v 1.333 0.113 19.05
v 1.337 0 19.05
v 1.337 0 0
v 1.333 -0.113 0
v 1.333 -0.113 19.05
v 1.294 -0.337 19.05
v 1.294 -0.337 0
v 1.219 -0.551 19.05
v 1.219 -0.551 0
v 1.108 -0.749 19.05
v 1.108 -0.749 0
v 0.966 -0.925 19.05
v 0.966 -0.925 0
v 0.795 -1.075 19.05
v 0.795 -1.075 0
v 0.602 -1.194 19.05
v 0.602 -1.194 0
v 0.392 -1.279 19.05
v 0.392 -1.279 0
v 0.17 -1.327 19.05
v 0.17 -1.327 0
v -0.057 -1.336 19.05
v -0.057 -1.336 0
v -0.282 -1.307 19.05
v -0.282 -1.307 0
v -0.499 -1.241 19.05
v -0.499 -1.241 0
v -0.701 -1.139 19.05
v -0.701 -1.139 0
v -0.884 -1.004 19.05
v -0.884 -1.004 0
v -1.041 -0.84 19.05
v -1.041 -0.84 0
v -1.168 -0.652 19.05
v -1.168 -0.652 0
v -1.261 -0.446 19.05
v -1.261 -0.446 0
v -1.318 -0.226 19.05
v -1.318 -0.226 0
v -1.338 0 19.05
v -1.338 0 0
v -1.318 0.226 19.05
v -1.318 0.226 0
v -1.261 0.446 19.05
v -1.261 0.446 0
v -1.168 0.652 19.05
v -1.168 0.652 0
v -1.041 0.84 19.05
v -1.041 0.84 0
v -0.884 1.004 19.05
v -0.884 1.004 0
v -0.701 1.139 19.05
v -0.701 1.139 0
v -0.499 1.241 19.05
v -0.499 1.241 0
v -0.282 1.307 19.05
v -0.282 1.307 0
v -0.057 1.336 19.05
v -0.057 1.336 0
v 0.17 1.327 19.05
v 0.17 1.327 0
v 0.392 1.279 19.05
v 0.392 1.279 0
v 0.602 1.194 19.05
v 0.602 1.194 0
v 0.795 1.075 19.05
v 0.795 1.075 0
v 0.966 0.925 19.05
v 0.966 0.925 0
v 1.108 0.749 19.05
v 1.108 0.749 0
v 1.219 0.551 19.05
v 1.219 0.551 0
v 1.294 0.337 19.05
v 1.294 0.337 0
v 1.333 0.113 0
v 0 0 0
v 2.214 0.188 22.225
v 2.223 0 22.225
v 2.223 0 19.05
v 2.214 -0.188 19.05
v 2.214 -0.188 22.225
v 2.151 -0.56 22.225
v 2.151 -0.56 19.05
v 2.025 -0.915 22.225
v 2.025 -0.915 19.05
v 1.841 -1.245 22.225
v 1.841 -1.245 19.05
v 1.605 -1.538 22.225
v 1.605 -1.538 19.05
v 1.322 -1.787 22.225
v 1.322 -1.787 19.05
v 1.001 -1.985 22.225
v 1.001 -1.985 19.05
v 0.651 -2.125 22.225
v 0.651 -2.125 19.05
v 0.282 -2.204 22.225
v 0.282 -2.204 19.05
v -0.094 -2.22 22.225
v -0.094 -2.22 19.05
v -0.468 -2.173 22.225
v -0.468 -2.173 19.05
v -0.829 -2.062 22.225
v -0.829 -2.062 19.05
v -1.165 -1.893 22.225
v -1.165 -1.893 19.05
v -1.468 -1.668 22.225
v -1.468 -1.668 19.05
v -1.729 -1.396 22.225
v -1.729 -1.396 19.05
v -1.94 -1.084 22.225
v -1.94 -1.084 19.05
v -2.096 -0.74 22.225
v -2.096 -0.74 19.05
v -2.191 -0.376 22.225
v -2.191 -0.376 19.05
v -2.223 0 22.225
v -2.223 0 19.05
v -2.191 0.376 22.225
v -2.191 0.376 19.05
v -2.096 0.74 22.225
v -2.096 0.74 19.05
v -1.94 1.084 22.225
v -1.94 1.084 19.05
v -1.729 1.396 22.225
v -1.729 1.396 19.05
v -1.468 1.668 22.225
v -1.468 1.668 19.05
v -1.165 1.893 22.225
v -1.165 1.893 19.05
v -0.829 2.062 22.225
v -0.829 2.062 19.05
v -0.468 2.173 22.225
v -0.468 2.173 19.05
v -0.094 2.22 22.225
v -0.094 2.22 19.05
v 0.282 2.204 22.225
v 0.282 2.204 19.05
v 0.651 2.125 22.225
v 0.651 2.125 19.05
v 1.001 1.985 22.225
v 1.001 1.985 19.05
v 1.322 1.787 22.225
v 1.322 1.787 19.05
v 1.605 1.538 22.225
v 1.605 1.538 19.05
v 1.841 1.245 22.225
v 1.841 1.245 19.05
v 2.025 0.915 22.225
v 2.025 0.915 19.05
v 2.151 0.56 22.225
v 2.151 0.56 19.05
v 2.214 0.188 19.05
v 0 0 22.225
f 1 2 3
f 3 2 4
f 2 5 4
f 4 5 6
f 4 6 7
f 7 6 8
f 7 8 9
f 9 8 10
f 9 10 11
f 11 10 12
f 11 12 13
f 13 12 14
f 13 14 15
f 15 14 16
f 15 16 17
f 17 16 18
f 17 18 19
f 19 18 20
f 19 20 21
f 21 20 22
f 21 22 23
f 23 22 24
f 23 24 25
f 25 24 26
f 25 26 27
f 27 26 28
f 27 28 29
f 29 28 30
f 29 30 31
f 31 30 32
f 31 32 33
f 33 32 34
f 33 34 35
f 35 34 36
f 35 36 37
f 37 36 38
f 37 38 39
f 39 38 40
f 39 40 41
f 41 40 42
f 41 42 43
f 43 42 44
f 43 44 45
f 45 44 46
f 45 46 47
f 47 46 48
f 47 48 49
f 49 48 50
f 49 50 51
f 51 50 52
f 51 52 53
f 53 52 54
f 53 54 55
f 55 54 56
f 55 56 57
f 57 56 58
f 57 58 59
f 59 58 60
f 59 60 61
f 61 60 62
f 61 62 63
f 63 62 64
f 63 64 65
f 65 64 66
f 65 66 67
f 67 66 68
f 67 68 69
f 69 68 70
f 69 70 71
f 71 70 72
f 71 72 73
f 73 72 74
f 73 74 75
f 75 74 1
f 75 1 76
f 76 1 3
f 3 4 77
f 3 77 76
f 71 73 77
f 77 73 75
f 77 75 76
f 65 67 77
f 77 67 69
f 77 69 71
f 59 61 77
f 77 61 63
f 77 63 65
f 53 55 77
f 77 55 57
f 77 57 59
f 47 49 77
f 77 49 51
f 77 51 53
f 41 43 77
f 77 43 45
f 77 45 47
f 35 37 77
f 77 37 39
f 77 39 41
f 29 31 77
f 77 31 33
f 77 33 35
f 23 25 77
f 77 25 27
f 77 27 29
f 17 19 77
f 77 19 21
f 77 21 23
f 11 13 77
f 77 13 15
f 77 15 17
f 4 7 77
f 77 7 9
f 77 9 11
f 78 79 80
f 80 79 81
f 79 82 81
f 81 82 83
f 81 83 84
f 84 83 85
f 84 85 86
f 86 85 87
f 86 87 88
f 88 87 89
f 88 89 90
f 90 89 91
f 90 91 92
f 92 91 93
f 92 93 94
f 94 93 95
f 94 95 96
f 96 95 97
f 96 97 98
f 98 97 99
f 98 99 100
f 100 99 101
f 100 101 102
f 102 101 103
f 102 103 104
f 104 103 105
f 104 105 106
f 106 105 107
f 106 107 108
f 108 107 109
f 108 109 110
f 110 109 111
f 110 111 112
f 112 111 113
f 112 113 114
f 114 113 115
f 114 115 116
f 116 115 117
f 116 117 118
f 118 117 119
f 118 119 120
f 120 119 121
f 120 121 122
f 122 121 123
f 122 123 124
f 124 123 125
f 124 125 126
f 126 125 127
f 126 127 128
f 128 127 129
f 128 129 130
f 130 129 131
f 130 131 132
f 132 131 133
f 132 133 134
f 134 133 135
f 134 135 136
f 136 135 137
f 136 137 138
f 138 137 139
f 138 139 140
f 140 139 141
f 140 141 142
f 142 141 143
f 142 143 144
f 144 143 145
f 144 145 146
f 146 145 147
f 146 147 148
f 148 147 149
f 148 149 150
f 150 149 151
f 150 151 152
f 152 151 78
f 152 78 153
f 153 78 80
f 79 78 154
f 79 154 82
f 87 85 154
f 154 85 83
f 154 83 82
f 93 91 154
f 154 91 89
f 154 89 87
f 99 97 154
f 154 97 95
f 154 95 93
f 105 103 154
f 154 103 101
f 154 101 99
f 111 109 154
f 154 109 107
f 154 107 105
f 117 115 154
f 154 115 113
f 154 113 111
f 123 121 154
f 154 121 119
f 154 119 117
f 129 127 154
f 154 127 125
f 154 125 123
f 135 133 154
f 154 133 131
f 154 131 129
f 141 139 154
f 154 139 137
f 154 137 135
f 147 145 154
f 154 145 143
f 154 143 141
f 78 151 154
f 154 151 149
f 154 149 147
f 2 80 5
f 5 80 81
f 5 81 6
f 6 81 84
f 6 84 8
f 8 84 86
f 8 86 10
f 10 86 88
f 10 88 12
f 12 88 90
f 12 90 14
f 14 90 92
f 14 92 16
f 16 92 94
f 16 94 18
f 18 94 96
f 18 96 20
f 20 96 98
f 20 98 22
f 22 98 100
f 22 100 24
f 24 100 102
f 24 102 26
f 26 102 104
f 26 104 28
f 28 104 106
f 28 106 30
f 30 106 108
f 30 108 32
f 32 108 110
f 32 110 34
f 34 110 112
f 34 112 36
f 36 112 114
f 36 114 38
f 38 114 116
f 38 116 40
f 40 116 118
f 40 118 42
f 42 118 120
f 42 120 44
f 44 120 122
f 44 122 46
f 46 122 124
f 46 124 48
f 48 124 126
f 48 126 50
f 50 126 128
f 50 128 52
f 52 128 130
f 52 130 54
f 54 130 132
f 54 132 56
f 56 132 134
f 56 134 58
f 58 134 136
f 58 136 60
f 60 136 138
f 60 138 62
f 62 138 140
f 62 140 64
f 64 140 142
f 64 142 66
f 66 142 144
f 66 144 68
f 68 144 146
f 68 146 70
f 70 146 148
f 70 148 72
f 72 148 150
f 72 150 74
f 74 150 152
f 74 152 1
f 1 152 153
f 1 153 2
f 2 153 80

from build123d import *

# Parameters (mm, degrees)
SKETCH1_R           = 1.5875
BOSS_EXTRUDE1_DEPTH = 19.05
SKETCH2_R           = 2.2225
BOSS_EXTRUDE2_DEPTH = 3.175
MOVE_FACE1_BY       = 0.250000008


with BuildPart() as part:
    # Sketch1 → Boss-Extrude1 (new body)
    with BuildSketch(Plane.XY):
        with Locations(Location((0, 0, 0), (0, 0, 180))):
            Circle(SKETCH1_R)
    extrude(amount=BOSS_EXTRUDE1_DEPTH)

    # Sketch2 → Boss-Extrude2 (add)
    with BuildSketch(Plane.XY.offset(19.05)):
        Circle(SKETCH2_R)
    extrude(amount=BOSS_EXTRUDE2_DEPTH)

    # Move Face1: a curved face moved inward by 0.25
    add(Solid.thicken(part.faces().sort_by_distance((1.5875, 0, 9.525))[0], -MOVE_FACE1_BY), mode=Mode.SUBTRACT)


solid = part.part
